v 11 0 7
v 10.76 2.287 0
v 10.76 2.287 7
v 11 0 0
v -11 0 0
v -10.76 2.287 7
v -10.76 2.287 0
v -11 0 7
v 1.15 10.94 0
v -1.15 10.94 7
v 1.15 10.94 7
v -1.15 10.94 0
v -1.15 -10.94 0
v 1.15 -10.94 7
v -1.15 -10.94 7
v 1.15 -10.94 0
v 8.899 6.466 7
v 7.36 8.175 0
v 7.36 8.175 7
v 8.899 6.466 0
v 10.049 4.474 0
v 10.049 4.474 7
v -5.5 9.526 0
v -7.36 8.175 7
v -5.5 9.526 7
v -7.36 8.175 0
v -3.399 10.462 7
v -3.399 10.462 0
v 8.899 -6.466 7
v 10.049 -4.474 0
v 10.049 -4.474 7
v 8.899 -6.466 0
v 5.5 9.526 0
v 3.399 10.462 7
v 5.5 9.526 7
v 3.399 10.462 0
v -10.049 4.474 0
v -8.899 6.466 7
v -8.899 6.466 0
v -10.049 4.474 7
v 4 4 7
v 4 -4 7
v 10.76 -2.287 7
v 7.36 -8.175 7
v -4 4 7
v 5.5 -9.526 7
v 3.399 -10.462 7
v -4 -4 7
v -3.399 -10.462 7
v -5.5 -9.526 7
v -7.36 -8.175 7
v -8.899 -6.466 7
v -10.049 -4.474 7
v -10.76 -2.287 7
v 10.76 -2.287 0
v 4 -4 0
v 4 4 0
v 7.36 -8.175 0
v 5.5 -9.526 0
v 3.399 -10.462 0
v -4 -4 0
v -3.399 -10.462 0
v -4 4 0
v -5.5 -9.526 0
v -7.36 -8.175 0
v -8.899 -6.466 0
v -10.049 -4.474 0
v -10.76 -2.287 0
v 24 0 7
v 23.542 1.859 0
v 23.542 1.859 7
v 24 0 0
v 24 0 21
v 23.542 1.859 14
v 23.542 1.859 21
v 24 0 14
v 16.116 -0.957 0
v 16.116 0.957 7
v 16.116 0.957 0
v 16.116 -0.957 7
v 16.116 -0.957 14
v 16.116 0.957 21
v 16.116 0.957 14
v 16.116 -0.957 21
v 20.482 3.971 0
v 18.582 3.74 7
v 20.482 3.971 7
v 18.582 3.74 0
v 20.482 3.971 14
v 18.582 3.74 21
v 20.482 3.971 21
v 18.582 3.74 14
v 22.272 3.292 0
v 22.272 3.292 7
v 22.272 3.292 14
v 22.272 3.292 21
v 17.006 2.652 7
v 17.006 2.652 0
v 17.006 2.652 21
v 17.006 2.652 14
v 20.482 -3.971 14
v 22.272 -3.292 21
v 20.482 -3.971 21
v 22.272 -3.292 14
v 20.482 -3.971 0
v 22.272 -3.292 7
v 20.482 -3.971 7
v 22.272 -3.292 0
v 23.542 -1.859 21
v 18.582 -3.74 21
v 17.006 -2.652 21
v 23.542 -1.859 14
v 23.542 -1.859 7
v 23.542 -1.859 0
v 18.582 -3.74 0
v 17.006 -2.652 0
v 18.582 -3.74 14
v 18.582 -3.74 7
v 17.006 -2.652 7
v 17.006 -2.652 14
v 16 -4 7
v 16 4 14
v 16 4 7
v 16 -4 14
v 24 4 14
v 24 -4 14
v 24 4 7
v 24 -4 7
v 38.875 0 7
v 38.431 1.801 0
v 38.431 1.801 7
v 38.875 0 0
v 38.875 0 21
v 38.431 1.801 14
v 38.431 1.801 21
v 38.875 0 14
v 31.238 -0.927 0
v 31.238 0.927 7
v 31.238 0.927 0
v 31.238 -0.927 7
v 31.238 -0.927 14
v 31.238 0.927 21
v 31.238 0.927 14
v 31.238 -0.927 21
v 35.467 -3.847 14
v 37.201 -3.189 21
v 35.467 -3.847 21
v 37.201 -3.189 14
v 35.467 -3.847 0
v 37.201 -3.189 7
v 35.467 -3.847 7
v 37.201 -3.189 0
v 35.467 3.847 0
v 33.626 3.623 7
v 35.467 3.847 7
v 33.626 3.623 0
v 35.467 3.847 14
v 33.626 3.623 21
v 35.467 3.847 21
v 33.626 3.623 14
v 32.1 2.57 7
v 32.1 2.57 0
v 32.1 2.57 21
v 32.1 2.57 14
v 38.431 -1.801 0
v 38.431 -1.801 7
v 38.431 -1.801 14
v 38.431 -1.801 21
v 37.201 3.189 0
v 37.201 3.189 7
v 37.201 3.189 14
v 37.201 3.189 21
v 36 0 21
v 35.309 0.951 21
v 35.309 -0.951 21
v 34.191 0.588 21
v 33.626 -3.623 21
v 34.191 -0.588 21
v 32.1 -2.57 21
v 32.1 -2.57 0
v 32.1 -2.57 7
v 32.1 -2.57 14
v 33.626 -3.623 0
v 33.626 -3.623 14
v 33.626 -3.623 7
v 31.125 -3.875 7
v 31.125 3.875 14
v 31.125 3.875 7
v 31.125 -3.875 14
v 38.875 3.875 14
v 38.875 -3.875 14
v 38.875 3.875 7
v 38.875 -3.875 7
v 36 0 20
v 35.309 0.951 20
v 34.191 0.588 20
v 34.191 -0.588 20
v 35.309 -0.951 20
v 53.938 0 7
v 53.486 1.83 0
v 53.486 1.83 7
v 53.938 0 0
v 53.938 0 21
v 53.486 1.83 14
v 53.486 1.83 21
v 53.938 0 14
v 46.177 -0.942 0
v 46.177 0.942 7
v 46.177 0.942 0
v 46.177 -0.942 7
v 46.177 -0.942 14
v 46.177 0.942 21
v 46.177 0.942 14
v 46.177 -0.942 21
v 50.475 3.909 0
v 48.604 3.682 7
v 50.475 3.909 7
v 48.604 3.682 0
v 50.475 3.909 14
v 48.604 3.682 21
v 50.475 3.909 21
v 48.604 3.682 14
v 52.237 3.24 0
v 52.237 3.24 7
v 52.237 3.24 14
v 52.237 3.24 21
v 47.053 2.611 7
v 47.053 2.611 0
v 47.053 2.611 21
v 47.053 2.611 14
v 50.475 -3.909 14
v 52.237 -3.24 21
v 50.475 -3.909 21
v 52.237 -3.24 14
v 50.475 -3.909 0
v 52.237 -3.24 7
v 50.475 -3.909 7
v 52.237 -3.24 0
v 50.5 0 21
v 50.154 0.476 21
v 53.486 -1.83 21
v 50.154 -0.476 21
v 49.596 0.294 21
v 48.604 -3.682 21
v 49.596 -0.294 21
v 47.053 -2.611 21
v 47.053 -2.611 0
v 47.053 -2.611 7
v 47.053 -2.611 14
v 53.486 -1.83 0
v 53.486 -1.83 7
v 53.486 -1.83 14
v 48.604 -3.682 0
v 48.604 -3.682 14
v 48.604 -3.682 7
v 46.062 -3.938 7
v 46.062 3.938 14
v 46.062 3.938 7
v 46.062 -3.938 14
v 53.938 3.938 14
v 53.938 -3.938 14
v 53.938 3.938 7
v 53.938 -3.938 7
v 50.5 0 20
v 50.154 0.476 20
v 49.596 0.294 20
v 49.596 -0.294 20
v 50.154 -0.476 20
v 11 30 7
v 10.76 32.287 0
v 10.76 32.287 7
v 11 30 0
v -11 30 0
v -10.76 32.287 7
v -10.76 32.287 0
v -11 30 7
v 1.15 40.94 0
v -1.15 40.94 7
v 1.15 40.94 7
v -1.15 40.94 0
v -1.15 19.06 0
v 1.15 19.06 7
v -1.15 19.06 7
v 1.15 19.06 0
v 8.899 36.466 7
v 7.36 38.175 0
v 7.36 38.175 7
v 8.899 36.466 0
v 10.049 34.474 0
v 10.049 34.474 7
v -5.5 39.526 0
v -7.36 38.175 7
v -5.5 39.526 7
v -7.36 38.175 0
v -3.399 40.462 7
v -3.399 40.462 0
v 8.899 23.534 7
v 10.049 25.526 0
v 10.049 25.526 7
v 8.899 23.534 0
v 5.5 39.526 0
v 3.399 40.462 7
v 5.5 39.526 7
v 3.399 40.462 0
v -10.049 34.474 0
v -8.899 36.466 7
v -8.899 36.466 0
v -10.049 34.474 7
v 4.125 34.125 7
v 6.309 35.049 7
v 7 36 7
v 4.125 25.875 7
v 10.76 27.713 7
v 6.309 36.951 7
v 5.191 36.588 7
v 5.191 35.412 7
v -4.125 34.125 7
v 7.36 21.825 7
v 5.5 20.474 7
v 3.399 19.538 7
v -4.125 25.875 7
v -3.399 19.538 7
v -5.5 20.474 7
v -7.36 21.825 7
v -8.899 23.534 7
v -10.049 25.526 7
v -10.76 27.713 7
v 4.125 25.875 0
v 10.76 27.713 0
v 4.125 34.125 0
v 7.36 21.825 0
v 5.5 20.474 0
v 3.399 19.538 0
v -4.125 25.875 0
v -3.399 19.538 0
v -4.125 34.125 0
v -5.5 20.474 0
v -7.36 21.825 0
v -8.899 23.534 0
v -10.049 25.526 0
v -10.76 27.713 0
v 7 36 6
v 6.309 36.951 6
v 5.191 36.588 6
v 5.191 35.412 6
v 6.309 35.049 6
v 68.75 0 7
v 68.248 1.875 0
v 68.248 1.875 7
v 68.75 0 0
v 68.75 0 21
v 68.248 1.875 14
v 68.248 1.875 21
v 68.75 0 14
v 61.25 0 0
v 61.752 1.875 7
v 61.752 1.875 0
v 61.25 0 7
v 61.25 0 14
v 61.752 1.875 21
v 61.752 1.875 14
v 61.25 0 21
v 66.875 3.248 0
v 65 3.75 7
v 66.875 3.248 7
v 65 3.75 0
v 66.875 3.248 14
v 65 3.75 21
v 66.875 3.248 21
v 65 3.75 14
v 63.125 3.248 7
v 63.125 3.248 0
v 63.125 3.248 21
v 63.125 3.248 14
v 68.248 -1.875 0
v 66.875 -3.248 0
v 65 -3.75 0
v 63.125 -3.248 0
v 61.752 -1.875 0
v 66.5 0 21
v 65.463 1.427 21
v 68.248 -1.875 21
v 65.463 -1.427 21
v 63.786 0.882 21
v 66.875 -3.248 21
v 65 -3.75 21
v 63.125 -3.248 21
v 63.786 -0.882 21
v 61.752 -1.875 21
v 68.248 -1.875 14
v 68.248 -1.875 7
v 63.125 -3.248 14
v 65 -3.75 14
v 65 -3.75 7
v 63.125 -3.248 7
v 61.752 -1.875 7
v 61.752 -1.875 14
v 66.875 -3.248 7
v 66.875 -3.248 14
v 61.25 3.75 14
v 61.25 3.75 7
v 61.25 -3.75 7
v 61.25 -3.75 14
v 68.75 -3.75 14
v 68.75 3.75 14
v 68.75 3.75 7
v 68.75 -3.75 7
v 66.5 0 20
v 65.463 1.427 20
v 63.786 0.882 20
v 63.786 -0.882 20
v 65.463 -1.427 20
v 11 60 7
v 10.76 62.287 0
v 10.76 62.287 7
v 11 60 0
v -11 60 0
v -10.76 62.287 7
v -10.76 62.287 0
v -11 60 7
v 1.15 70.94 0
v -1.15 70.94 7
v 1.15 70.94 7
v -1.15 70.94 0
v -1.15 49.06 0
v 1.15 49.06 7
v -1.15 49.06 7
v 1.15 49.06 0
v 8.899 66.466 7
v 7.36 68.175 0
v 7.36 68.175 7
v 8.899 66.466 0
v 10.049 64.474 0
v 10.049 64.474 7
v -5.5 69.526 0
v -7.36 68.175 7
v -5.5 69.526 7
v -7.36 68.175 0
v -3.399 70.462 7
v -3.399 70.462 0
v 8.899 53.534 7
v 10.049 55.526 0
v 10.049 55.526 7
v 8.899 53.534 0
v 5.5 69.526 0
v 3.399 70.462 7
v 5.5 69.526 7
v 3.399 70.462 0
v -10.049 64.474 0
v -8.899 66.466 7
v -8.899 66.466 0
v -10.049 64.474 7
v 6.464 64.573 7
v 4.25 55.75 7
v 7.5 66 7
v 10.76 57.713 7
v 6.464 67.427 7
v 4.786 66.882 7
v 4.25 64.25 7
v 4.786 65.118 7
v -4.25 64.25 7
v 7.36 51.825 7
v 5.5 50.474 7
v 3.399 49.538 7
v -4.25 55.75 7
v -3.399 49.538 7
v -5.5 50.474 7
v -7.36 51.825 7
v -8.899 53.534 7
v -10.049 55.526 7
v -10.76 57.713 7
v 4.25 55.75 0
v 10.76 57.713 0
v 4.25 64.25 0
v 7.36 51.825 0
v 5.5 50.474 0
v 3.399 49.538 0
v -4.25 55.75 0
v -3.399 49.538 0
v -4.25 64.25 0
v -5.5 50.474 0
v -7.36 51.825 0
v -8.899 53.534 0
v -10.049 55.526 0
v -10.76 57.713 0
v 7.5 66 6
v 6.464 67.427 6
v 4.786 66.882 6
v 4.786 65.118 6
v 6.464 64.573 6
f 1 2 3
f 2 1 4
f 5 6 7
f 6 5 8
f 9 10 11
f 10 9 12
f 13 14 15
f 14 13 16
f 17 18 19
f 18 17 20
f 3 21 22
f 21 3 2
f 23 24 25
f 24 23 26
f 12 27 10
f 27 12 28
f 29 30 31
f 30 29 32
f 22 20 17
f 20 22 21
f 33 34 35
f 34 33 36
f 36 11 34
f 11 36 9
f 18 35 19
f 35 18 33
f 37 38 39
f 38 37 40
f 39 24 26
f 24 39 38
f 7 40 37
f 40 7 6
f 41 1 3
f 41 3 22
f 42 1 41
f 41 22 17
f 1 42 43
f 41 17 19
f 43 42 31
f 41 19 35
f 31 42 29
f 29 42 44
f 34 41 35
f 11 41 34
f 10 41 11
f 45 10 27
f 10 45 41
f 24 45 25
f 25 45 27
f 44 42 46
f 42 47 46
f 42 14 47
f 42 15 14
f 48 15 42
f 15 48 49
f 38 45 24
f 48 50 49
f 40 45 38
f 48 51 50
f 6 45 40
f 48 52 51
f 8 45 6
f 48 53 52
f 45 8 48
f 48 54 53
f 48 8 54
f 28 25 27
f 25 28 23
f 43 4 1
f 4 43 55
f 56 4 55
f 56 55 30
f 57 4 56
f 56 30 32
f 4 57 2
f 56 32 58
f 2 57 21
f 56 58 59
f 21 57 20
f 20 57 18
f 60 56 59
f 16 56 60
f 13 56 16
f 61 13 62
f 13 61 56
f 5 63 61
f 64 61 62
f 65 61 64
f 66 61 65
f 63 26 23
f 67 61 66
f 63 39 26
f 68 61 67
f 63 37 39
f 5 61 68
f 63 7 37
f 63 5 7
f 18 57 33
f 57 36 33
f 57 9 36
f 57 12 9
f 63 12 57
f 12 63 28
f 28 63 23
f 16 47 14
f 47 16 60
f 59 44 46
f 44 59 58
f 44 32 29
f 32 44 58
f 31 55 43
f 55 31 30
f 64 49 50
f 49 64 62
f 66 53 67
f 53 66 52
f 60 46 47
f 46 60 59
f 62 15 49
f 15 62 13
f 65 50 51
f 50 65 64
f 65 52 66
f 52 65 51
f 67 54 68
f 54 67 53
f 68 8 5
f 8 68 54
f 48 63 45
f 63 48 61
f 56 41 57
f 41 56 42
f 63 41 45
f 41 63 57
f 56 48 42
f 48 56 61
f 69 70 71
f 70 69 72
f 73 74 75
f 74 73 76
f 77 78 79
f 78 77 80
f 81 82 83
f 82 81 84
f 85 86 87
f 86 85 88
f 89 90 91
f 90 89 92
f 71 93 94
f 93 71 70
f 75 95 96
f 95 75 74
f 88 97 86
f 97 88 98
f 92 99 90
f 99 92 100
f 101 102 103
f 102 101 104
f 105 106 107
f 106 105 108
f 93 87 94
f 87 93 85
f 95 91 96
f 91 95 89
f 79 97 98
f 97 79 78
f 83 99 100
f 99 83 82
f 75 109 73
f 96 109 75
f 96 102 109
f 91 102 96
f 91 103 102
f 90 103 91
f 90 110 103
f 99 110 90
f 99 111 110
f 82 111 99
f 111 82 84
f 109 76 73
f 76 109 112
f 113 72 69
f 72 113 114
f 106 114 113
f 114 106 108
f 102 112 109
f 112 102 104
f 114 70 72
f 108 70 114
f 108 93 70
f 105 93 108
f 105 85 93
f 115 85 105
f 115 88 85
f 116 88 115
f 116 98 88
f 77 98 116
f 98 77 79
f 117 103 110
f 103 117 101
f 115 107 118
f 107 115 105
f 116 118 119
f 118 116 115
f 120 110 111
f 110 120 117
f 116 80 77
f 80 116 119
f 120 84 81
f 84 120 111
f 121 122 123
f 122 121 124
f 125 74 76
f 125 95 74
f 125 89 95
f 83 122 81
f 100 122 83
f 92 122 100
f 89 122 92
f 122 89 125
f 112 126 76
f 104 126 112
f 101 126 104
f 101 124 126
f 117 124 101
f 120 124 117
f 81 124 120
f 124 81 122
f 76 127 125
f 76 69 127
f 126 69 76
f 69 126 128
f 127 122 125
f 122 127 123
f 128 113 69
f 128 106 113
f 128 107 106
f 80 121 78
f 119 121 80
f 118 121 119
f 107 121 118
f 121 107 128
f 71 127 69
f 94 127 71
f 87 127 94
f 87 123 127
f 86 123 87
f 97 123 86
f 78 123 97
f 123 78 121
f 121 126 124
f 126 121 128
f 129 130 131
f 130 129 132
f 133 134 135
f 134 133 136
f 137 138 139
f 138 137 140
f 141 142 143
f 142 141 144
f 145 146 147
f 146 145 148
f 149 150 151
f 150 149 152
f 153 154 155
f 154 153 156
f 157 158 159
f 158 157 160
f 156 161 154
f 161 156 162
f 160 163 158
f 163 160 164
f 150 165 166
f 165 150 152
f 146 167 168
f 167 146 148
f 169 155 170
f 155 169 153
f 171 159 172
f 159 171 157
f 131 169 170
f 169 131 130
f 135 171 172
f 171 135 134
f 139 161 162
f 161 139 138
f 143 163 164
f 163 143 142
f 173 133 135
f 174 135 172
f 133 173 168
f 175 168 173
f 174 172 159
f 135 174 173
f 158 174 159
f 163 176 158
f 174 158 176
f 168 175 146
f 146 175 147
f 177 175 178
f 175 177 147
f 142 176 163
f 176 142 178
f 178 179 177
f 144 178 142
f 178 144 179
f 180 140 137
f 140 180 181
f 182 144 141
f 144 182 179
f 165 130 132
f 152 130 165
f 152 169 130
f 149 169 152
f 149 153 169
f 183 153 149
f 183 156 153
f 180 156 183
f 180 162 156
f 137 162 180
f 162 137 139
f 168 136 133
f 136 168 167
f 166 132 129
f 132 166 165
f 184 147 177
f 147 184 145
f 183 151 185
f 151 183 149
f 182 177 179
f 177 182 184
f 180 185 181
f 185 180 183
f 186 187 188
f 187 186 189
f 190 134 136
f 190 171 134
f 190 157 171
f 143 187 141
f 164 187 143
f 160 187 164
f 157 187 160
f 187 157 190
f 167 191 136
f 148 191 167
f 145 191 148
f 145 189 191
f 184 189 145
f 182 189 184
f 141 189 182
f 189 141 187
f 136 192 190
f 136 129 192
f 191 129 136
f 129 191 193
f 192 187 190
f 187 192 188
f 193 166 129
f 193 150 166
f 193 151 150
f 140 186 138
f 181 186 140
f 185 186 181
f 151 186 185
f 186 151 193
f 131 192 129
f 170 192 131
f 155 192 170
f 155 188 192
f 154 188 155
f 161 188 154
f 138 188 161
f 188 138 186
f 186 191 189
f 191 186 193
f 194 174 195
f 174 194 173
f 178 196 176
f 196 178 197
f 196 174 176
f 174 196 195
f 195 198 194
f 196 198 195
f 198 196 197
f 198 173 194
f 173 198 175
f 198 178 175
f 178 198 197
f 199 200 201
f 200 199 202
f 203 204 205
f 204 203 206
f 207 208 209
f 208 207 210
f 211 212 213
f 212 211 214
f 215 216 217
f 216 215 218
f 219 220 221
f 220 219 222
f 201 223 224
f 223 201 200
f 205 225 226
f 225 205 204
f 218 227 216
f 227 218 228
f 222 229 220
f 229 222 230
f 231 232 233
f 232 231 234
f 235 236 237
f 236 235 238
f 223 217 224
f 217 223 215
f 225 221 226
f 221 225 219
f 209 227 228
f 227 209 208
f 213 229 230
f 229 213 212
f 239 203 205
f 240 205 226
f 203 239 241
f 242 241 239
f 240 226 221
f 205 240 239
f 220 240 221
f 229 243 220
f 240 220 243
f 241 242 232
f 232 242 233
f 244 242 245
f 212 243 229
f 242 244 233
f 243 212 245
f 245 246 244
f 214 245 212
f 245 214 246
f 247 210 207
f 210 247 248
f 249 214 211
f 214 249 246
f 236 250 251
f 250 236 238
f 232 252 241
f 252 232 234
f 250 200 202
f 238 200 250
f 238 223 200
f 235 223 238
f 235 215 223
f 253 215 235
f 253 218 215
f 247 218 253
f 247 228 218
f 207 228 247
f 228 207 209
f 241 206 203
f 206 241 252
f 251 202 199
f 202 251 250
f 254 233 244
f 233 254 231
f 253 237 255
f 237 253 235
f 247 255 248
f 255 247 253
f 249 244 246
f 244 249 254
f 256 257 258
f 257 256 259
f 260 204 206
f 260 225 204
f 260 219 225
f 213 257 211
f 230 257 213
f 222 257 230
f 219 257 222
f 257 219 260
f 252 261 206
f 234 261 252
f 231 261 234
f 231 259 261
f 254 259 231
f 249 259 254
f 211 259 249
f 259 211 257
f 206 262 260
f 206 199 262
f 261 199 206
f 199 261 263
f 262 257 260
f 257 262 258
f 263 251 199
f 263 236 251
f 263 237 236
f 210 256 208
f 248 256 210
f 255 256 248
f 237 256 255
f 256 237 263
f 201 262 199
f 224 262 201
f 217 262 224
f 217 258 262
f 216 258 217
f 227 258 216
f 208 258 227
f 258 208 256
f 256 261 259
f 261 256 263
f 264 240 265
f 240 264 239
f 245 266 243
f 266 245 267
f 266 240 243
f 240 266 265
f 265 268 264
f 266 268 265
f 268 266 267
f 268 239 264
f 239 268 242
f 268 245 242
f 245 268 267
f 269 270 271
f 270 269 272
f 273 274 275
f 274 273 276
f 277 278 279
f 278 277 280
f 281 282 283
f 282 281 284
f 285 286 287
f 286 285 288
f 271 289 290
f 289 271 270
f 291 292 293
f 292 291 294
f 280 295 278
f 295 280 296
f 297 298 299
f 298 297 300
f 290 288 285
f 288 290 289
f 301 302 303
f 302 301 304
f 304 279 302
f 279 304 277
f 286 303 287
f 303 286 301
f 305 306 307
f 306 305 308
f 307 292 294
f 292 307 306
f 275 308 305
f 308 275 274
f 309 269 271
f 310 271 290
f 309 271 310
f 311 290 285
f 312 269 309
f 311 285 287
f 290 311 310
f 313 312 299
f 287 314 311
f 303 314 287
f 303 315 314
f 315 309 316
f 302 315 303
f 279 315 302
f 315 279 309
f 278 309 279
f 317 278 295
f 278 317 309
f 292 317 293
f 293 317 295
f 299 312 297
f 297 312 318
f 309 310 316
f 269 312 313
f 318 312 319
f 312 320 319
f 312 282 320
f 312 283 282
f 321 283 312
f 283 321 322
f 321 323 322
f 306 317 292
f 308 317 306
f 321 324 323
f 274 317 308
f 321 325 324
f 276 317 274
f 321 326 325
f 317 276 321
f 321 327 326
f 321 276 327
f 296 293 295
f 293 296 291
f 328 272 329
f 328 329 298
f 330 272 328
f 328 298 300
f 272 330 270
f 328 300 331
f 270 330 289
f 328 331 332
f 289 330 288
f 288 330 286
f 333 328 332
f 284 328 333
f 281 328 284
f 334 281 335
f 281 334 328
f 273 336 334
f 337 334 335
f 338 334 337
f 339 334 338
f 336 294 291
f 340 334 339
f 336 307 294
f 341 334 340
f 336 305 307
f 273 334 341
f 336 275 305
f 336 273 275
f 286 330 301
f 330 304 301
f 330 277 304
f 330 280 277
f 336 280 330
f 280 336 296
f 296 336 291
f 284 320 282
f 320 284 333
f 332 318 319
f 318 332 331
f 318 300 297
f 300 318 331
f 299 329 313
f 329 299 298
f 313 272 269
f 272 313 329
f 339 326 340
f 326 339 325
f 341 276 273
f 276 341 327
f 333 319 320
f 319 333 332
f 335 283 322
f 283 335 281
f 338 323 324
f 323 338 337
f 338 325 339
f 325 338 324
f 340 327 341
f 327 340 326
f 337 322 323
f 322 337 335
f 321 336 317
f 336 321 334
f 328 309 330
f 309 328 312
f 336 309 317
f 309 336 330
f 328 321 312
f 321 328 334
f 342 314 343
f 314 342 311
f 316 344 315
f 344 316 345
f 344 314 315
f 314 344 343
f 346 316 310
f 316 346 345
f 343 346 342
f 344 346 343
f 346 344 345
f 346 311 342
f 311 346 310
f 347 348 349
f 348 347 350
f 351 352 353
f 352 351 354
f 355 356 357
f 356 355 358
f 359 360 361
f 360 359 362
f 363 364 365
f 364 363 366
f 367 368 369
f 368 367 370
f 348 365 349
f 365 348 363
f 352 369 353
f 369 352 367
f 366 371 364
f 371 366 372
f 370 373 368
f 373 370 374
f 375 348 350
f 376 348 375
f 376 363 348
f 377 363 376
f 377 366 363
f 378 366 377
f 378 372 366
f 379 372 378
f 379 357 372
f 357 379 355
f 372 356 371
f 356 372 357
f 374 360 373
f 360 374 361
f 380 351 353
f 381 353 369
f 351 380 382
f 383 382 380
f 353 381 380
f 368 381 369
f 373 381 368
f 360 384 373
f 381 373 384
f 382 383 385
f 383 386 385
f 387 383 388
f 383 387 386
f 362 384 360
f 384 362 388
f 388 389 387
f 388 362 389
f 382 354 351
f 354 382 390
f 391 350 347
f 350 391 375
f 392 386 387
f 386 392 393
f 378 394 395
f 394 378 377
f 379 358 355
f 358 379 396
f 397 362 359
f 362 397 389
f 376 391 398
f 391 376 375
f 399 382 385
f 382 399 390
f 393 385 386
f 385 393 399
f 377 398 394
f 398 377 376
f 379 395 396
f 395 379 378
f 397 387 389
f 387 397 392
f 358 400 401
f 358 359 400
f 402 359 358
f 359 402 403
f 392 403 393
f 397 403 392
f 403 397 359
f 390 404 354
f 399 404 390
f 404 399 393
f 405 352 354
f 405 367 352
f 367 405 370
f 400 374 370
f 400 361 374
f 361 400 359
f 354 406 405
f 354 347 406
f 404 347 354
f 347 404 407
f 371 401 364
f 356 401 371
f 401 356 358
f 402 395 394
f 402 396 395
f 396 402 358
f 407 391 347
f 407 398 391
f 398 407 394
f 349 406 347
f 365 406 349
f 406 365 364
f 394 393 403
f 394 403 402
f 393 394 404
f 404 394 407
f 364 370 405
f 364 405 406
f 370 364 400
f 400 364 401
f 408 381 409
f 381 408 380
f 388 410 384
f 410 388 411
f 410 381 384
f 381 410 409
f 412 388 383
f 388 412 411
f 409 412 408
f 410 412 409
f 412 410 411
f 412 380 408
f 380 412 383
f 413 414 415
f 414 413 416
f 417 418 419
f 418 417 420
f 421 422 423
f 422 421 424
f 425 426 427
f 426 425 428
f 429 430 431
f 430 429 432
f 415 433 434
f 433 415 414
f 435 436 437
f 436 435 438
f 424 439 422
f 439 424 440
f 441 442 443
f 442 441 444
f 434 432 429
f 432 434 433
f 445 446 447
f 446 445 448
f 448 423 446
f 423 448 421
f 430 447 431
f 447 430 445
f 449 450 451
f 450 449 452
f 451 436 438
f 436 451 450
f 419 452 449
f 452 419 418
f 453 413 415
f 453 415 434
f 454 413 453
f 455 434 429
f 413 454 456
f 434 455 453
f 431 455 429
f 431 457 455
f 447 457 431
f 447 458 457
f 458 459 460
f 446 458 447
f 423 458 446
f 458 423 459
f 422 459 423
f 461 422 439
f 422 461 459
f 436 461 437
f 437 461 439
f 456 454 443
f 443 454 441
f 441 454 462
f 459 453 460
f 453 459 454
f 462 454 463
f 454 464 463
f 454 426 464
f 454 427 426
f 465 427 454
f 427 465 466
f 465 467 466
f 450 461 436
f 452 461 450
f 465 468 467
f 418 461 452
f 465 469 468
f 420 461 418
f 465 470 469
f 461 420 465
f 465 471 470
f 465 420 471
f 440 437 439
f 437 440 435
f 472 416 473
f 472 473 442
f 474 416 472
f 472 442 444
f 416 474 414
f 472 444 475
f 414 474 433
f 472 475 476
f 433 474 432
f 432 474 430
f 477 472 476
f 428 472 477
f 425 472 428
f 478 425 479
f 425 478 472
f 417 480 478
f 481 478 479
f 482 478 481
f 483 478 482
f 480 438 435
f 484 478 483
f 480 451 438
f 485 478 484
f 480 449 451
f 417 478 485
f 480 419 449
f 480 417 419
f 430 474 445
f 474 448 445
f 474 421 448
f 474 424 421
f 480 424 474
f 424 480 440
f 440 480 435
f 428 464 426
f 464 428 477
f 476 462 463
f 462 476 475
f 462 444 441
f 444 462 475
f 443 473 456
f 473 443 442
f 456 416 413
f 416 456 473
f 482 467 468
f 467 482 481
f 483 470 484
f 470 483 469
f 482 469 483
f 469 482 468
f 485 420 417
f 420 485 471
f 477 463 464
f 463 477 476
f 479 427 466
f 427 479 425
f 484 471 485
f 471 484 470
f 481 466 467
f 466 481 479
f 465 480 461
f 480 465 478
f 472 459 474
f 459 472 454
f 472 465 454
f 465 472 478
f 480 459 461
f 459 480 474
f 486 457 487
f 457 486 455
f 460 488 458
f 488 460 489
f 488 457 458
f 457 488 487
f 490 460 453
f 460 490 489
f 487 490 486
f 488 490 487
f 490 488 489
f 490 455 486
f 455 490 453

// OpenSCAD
// hole
difference() {
    cylinder(h=7, r=11);
    translate([0, 0, 3.5]) cube([8, 8, 7], center = true);
}

// pin
translate([20, 0, 0]) {
    cylinder(h=21, r=4);
    translate([0, 0, 10.5]) cube([8, 8, 7], center = true);
}
translate([35, 0, 0]) {
    difference() {
        union() {
            cylinder(h=21, r=3.875);
            translate([0, 0, 10.5]) cube([7.75, 7.75, 7], center = true);
        }
        translate([0, 0, 20]) cylinder(h=1, r=1);
    }
}
translate([50, 0, 0]) {
    difference() {
        union() {
            cylinder(h=21, r=7.875/2);
            translate([0, 0, 10.5]) cube([7.875, 7.875, 7], center = true);
        }
        translate([0, 0, 20]) cylinder(h=1, r=0.5);
    }
}
translate([65, 0, 0]) {
    difference() {
        union() {
            cylinder(h=21, r=7.5/2);
            translate([0, 0, 10.5]) cube([7.5, 7.5, 7], center = true);
        }
        translate([0, 0, 20]) cylinder(h=1, r=1.5);
    }
}

translate([0, 30, 0]) difference() {
    cylinder(h=7, r=11);
    translate([0, 0, 3.5]) cube([8.25, 8.25, 7], center = true);
    translate([6, 6, 6]) cylinder(h=1, r=1);
}

translate([0, 60, 0]) difference() {
    cylinder(h=7, r=11);
    translate([0, 0, 3.5]) cube([8.5, 8.5, 7], center = true);
    translate([6, 6, 6]) cylinder(h=1, r=1.5);
}
